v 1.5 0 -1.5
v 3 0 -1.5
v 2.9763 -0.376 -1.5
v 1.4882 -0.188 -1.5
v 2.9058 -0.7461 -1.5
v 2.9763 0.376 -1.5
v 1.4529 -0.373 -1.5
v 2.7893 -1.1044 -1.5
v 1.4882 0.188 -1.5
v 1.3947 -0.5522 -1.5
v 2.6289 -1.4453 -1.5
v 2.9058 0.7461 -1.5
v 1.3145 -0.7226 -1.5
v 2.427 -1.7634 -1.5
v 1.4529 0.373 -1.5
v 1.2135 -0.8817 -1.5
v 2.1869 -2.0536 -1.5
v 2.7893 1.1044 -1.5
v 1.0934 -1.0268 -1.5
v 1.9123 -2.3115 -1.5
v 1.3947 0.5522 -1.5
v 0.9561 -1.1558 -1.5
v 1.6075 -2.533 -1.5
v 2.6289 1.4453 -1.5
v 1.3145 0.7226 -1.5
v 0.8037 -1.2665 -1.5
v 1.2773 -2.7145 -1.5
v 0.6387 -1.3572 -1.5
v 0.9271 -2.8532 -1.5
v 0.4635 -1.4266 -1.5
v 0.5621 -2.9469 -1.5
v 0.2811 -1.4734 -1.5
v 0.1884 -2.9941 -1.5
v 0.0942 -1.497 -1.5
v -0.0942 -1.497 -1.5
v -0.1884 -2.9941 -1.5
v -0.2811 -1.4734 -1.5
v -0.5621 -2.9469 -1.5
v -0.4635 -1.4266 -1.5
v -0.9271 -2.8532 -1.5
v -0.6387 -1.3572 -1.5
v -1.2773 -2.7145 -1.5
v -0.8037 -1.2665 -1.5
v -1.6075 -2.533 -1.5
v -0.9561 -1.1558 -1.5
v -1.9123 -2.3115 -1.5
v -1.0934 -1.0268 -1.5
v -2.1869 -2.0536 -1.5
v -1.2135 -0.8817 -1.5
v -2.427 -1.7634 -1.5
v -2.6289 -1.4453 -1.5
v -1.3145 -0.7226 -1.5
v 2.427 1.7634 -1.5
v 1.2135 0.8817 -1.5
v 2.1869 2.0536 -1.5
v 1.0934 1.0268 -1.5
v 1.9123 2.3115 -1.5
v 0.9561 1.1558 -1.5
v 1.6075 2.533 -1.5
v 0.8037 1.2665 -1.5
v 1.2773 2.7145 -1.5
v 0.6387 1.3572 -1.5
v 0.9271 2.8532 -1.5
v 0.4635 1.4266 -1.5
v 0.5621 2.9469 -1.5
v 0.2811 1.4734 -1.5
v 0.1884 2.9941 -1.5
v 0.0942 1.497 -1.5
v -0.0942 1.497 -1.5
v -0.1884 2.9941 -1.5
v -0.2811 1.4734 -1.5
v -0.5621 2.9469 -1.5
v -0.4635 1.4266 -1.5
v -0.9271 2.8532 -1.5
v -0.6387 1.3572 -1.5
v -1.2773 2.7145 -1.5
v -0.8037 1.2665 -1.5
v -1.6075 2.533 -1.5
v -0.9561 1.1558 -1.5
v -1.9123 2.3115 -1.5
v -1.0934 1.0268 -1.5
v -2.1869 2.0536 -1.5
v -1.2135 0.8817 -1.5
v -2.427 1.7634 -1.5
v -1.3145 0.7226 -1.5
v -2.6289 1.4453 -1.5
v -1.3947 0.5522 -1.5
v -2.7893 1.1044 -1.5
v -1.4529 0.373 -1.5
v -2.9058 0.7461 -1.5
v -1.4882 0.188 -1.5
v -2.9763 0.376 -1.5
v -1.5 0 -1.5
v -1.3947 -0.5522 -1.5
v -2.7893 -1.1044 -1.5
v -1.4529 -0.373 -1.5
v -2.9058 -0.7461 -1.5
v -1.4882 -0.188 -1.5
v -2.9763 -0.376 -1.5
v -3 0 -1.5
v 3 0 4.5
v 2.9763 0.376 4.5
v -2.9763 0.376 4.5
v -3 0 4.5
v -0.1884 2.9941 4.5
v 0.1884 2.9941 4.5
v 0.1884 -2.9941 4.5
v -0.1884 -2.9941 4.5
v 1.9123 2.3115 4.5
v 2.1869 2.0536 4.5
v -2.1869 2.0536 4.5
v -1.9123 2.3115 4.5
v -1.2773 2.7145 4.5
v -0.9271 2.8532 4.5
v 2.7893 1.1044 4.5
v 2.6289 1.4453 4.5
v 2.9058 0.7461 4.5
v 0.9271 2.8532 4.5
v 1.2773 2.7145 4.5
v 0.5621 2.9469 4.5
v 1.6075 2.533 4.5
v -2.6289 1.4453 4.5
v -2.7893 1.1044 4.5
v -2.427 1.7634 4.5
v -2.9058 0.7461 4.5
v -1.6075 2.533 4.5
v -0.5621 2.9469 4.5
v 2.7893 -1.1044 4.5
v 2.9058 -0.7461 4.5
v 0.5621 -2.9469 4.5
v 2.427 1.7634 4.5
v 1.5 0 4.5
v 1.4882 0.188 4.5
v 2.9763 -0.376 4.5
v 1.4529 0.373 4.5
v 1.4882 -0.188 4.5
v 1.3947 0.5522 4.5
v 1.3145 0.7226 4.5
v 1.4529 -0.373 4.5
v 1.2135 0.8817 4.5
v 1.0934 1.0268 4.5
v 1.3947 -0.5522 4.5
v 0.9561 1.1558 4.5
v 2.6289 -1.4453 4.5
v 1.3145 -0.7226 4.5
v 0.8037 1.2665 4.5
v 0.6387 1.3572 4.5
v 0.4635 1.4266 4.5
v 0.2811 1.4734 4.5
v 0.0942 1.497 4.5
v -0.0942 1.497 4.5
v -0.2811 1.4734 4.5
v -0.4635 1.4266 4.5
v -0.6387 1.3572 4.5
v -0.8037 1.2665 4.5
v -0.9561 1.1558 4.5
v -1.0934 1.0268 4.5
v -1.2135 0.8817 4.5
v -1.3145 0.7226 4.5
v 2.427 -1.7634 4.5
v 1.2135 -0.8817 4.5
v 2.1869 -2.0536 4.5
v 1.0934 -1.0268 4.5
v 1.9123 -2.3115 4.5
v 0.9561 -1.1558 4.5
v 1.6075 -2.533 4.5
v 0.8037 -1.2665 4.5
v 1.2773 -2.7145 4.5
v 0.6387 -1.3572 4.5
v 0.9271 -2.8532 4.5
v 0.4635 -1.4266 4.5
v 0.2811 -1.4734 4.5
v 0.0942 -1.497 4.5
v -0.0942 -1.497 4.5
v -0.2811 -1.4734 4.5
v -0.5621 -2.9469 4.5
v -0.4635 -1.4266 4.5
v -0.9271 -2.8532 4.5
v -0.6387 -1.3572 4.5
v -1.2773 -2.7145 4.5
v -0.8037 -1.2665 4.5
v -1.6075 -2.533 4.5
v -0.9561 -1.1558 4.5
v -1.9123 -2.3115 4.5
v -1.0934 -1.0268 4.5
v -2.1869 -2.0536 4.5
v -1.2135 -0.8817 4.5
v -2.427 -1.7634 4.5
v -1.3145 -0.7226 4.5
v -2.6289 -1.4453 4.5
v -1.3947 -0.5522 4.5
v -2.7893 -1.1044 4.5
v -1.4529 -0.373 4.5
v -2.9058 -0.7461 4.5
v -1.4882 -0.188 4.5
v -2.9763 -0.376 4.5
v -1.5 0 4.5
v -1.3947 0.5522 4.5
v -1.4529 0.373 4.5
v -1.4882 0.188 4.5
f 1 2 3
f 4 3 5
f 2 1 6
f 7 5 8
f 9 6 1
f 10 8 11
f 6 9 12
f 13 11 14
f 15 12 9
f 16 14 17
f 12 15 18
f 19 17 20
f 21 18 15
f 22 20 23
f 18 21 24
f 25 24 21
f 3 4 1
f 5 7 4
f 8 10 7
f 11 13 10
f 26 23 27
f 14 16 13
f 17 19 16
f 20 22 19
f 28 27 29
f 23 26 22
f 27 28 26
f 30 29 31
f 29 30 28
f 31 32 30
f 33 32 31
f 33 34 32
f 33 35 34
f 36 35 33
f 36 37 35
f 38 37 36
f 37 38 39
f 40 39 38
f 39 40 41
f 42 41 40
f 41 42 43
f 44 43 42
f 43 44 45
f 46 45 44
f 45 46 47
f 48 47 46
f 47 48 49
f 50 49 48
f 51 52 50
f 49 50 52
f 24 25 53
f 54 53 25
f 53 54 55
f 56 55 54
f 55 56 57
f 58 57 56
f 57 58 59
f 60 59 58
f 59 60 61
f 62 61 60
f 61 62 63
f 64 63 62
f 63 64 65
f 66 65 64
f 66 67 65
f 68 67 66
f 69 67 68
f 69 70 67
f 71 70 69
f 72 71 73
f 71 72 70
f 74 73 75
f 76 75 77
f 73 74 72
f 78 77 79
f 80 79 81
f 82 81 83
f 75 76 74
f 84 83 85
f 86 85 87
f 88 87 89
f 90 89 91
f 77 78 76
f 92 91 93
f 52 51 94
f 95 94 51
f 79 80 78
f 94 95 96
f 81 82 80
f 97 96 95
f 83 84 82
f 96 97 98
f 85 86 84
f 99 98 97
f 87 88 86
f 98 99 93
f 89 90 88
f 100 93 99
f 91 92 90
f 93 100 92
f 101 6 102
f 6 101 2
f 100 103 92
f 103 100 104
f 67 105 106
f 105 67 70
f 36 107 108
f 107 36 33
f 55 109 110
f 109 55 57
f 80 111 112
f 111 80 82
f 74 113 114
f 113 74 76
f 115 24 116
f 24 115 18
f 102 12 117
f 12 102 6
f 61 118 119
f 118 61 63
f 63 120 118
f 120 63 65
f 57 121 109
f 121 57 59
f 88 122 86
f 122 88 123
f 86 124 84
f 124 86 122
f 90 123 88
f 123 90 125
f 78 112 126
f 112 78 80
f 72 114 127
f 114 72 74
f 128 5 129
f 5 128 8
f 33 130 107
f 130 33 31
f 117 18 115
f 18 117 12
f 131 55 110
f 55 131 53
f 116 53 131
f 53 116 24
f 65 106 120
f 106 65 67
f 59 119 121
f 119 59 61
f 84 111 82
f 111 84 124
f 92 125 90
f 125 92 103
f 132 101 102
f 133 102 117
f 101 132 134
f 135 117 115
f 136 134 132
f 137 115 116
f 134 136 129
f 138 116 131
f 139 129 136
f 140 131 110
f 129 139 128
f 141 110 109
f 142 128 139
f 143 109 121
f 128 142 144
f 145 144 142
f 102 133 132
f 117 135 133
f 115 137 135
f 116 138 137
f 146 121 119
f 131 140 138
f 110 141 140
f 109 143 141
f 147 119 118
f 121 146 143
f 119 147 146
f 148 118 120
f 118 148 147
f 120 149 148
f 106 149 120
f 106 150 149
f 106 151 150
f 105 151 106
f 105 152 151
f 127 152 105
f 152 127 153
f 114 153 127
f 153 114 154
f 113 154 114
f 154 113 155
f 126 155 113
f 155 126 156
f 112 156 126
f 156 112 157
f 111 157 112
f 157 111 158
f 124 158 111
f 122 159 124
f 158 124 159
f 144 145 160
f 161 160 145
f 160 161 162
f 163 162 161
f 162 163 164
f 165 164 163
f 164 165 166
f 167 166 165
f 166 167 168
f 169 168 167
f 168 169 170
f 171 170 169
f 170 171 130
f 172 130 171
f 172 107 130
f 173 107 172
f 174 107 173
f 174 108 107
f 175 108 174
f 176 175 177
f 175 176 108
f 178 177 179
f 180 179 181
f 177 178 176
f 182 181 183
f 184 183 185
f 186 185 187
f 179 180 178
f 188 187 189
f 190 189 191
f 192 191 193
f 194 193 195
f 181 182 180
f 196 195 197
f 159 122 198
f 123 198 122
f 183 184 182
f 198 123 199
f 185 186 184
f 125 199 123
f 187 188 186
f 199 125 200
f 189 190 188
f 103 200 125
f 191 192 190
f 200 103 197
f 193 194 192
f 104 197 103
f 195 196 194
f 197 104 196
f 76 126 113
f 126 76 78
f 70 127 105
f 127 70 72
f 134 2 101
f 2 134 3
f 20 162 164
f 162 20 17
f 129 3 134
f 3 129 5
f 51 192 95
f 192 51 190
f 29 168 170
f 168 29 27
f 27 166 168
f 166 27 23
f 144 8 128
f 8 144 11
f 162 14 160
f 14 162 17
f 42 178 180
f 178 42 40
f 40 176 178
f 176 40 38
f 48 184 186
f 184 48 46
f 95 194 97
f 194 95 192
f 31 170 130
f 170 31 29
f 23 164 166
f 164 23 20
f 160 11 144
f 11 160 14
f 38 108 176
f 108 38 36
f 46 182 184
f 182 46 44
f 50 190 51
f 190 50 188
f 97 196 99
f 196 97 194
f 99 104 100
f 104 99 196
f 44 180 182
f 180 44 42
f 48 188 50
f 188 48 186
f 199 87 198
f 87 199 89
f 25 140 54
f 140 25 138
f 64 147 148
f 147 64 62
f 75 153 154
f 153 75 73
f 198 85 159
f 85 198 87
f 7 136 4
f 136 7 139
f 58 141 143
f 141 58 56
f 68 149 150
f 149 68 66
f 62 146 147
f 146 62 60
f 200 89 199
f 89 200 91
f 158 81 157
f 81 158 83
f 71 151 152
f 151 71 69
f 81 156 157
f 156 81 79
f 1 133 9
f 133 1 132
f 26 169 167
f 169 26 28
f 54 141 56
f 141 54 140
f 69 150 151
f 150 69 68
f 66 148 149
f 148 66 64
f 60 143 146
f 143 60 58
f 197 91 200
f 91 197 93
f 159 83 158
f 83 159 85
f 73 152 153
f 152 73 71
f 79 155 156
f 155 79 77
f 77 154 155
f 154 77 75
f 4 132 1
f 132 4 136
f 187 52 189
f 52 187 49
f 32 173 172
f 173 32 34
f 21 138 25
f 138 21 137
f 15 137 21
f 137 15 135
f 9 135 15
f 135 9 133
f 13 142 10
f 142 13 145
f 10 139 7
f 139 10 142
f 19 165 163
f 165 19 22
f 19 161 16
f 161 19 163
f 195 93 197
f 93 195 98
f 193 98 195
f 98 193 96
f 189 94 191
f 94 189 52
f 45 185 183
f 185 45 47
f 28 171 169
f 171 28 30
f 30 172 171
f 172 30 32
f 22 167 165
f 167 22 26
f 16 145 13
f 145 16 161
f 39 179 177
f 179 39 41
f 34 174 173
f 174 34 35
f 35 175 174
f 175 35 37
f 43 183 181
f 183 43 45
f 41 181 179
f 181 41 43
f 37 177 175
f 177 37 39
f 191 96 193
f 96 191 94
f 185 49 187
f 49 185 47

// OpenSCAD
$fn = 50;


difference() {
	union() {
		translate(v = [0, 0, -1.5000000000]) {
			rotate(a = [0, 0, 0]) {
				cylinder(h = 3, r = 1.0000000000);
			}
		}
		translate(v = [0, 0, -1.5000000000]) {
			rotate(a = [0, 0, 0]) {
				cylinder(h = 6, r = 3.0000000000);
			}
		}
	}
	union() {
		translate(v = [0, 0, -125.0000000000]) {
			rotate(a = [0, 0, 0]) {
				cylinder(h = 250, r = 1.5000000000);
			}
		}
	}
}
